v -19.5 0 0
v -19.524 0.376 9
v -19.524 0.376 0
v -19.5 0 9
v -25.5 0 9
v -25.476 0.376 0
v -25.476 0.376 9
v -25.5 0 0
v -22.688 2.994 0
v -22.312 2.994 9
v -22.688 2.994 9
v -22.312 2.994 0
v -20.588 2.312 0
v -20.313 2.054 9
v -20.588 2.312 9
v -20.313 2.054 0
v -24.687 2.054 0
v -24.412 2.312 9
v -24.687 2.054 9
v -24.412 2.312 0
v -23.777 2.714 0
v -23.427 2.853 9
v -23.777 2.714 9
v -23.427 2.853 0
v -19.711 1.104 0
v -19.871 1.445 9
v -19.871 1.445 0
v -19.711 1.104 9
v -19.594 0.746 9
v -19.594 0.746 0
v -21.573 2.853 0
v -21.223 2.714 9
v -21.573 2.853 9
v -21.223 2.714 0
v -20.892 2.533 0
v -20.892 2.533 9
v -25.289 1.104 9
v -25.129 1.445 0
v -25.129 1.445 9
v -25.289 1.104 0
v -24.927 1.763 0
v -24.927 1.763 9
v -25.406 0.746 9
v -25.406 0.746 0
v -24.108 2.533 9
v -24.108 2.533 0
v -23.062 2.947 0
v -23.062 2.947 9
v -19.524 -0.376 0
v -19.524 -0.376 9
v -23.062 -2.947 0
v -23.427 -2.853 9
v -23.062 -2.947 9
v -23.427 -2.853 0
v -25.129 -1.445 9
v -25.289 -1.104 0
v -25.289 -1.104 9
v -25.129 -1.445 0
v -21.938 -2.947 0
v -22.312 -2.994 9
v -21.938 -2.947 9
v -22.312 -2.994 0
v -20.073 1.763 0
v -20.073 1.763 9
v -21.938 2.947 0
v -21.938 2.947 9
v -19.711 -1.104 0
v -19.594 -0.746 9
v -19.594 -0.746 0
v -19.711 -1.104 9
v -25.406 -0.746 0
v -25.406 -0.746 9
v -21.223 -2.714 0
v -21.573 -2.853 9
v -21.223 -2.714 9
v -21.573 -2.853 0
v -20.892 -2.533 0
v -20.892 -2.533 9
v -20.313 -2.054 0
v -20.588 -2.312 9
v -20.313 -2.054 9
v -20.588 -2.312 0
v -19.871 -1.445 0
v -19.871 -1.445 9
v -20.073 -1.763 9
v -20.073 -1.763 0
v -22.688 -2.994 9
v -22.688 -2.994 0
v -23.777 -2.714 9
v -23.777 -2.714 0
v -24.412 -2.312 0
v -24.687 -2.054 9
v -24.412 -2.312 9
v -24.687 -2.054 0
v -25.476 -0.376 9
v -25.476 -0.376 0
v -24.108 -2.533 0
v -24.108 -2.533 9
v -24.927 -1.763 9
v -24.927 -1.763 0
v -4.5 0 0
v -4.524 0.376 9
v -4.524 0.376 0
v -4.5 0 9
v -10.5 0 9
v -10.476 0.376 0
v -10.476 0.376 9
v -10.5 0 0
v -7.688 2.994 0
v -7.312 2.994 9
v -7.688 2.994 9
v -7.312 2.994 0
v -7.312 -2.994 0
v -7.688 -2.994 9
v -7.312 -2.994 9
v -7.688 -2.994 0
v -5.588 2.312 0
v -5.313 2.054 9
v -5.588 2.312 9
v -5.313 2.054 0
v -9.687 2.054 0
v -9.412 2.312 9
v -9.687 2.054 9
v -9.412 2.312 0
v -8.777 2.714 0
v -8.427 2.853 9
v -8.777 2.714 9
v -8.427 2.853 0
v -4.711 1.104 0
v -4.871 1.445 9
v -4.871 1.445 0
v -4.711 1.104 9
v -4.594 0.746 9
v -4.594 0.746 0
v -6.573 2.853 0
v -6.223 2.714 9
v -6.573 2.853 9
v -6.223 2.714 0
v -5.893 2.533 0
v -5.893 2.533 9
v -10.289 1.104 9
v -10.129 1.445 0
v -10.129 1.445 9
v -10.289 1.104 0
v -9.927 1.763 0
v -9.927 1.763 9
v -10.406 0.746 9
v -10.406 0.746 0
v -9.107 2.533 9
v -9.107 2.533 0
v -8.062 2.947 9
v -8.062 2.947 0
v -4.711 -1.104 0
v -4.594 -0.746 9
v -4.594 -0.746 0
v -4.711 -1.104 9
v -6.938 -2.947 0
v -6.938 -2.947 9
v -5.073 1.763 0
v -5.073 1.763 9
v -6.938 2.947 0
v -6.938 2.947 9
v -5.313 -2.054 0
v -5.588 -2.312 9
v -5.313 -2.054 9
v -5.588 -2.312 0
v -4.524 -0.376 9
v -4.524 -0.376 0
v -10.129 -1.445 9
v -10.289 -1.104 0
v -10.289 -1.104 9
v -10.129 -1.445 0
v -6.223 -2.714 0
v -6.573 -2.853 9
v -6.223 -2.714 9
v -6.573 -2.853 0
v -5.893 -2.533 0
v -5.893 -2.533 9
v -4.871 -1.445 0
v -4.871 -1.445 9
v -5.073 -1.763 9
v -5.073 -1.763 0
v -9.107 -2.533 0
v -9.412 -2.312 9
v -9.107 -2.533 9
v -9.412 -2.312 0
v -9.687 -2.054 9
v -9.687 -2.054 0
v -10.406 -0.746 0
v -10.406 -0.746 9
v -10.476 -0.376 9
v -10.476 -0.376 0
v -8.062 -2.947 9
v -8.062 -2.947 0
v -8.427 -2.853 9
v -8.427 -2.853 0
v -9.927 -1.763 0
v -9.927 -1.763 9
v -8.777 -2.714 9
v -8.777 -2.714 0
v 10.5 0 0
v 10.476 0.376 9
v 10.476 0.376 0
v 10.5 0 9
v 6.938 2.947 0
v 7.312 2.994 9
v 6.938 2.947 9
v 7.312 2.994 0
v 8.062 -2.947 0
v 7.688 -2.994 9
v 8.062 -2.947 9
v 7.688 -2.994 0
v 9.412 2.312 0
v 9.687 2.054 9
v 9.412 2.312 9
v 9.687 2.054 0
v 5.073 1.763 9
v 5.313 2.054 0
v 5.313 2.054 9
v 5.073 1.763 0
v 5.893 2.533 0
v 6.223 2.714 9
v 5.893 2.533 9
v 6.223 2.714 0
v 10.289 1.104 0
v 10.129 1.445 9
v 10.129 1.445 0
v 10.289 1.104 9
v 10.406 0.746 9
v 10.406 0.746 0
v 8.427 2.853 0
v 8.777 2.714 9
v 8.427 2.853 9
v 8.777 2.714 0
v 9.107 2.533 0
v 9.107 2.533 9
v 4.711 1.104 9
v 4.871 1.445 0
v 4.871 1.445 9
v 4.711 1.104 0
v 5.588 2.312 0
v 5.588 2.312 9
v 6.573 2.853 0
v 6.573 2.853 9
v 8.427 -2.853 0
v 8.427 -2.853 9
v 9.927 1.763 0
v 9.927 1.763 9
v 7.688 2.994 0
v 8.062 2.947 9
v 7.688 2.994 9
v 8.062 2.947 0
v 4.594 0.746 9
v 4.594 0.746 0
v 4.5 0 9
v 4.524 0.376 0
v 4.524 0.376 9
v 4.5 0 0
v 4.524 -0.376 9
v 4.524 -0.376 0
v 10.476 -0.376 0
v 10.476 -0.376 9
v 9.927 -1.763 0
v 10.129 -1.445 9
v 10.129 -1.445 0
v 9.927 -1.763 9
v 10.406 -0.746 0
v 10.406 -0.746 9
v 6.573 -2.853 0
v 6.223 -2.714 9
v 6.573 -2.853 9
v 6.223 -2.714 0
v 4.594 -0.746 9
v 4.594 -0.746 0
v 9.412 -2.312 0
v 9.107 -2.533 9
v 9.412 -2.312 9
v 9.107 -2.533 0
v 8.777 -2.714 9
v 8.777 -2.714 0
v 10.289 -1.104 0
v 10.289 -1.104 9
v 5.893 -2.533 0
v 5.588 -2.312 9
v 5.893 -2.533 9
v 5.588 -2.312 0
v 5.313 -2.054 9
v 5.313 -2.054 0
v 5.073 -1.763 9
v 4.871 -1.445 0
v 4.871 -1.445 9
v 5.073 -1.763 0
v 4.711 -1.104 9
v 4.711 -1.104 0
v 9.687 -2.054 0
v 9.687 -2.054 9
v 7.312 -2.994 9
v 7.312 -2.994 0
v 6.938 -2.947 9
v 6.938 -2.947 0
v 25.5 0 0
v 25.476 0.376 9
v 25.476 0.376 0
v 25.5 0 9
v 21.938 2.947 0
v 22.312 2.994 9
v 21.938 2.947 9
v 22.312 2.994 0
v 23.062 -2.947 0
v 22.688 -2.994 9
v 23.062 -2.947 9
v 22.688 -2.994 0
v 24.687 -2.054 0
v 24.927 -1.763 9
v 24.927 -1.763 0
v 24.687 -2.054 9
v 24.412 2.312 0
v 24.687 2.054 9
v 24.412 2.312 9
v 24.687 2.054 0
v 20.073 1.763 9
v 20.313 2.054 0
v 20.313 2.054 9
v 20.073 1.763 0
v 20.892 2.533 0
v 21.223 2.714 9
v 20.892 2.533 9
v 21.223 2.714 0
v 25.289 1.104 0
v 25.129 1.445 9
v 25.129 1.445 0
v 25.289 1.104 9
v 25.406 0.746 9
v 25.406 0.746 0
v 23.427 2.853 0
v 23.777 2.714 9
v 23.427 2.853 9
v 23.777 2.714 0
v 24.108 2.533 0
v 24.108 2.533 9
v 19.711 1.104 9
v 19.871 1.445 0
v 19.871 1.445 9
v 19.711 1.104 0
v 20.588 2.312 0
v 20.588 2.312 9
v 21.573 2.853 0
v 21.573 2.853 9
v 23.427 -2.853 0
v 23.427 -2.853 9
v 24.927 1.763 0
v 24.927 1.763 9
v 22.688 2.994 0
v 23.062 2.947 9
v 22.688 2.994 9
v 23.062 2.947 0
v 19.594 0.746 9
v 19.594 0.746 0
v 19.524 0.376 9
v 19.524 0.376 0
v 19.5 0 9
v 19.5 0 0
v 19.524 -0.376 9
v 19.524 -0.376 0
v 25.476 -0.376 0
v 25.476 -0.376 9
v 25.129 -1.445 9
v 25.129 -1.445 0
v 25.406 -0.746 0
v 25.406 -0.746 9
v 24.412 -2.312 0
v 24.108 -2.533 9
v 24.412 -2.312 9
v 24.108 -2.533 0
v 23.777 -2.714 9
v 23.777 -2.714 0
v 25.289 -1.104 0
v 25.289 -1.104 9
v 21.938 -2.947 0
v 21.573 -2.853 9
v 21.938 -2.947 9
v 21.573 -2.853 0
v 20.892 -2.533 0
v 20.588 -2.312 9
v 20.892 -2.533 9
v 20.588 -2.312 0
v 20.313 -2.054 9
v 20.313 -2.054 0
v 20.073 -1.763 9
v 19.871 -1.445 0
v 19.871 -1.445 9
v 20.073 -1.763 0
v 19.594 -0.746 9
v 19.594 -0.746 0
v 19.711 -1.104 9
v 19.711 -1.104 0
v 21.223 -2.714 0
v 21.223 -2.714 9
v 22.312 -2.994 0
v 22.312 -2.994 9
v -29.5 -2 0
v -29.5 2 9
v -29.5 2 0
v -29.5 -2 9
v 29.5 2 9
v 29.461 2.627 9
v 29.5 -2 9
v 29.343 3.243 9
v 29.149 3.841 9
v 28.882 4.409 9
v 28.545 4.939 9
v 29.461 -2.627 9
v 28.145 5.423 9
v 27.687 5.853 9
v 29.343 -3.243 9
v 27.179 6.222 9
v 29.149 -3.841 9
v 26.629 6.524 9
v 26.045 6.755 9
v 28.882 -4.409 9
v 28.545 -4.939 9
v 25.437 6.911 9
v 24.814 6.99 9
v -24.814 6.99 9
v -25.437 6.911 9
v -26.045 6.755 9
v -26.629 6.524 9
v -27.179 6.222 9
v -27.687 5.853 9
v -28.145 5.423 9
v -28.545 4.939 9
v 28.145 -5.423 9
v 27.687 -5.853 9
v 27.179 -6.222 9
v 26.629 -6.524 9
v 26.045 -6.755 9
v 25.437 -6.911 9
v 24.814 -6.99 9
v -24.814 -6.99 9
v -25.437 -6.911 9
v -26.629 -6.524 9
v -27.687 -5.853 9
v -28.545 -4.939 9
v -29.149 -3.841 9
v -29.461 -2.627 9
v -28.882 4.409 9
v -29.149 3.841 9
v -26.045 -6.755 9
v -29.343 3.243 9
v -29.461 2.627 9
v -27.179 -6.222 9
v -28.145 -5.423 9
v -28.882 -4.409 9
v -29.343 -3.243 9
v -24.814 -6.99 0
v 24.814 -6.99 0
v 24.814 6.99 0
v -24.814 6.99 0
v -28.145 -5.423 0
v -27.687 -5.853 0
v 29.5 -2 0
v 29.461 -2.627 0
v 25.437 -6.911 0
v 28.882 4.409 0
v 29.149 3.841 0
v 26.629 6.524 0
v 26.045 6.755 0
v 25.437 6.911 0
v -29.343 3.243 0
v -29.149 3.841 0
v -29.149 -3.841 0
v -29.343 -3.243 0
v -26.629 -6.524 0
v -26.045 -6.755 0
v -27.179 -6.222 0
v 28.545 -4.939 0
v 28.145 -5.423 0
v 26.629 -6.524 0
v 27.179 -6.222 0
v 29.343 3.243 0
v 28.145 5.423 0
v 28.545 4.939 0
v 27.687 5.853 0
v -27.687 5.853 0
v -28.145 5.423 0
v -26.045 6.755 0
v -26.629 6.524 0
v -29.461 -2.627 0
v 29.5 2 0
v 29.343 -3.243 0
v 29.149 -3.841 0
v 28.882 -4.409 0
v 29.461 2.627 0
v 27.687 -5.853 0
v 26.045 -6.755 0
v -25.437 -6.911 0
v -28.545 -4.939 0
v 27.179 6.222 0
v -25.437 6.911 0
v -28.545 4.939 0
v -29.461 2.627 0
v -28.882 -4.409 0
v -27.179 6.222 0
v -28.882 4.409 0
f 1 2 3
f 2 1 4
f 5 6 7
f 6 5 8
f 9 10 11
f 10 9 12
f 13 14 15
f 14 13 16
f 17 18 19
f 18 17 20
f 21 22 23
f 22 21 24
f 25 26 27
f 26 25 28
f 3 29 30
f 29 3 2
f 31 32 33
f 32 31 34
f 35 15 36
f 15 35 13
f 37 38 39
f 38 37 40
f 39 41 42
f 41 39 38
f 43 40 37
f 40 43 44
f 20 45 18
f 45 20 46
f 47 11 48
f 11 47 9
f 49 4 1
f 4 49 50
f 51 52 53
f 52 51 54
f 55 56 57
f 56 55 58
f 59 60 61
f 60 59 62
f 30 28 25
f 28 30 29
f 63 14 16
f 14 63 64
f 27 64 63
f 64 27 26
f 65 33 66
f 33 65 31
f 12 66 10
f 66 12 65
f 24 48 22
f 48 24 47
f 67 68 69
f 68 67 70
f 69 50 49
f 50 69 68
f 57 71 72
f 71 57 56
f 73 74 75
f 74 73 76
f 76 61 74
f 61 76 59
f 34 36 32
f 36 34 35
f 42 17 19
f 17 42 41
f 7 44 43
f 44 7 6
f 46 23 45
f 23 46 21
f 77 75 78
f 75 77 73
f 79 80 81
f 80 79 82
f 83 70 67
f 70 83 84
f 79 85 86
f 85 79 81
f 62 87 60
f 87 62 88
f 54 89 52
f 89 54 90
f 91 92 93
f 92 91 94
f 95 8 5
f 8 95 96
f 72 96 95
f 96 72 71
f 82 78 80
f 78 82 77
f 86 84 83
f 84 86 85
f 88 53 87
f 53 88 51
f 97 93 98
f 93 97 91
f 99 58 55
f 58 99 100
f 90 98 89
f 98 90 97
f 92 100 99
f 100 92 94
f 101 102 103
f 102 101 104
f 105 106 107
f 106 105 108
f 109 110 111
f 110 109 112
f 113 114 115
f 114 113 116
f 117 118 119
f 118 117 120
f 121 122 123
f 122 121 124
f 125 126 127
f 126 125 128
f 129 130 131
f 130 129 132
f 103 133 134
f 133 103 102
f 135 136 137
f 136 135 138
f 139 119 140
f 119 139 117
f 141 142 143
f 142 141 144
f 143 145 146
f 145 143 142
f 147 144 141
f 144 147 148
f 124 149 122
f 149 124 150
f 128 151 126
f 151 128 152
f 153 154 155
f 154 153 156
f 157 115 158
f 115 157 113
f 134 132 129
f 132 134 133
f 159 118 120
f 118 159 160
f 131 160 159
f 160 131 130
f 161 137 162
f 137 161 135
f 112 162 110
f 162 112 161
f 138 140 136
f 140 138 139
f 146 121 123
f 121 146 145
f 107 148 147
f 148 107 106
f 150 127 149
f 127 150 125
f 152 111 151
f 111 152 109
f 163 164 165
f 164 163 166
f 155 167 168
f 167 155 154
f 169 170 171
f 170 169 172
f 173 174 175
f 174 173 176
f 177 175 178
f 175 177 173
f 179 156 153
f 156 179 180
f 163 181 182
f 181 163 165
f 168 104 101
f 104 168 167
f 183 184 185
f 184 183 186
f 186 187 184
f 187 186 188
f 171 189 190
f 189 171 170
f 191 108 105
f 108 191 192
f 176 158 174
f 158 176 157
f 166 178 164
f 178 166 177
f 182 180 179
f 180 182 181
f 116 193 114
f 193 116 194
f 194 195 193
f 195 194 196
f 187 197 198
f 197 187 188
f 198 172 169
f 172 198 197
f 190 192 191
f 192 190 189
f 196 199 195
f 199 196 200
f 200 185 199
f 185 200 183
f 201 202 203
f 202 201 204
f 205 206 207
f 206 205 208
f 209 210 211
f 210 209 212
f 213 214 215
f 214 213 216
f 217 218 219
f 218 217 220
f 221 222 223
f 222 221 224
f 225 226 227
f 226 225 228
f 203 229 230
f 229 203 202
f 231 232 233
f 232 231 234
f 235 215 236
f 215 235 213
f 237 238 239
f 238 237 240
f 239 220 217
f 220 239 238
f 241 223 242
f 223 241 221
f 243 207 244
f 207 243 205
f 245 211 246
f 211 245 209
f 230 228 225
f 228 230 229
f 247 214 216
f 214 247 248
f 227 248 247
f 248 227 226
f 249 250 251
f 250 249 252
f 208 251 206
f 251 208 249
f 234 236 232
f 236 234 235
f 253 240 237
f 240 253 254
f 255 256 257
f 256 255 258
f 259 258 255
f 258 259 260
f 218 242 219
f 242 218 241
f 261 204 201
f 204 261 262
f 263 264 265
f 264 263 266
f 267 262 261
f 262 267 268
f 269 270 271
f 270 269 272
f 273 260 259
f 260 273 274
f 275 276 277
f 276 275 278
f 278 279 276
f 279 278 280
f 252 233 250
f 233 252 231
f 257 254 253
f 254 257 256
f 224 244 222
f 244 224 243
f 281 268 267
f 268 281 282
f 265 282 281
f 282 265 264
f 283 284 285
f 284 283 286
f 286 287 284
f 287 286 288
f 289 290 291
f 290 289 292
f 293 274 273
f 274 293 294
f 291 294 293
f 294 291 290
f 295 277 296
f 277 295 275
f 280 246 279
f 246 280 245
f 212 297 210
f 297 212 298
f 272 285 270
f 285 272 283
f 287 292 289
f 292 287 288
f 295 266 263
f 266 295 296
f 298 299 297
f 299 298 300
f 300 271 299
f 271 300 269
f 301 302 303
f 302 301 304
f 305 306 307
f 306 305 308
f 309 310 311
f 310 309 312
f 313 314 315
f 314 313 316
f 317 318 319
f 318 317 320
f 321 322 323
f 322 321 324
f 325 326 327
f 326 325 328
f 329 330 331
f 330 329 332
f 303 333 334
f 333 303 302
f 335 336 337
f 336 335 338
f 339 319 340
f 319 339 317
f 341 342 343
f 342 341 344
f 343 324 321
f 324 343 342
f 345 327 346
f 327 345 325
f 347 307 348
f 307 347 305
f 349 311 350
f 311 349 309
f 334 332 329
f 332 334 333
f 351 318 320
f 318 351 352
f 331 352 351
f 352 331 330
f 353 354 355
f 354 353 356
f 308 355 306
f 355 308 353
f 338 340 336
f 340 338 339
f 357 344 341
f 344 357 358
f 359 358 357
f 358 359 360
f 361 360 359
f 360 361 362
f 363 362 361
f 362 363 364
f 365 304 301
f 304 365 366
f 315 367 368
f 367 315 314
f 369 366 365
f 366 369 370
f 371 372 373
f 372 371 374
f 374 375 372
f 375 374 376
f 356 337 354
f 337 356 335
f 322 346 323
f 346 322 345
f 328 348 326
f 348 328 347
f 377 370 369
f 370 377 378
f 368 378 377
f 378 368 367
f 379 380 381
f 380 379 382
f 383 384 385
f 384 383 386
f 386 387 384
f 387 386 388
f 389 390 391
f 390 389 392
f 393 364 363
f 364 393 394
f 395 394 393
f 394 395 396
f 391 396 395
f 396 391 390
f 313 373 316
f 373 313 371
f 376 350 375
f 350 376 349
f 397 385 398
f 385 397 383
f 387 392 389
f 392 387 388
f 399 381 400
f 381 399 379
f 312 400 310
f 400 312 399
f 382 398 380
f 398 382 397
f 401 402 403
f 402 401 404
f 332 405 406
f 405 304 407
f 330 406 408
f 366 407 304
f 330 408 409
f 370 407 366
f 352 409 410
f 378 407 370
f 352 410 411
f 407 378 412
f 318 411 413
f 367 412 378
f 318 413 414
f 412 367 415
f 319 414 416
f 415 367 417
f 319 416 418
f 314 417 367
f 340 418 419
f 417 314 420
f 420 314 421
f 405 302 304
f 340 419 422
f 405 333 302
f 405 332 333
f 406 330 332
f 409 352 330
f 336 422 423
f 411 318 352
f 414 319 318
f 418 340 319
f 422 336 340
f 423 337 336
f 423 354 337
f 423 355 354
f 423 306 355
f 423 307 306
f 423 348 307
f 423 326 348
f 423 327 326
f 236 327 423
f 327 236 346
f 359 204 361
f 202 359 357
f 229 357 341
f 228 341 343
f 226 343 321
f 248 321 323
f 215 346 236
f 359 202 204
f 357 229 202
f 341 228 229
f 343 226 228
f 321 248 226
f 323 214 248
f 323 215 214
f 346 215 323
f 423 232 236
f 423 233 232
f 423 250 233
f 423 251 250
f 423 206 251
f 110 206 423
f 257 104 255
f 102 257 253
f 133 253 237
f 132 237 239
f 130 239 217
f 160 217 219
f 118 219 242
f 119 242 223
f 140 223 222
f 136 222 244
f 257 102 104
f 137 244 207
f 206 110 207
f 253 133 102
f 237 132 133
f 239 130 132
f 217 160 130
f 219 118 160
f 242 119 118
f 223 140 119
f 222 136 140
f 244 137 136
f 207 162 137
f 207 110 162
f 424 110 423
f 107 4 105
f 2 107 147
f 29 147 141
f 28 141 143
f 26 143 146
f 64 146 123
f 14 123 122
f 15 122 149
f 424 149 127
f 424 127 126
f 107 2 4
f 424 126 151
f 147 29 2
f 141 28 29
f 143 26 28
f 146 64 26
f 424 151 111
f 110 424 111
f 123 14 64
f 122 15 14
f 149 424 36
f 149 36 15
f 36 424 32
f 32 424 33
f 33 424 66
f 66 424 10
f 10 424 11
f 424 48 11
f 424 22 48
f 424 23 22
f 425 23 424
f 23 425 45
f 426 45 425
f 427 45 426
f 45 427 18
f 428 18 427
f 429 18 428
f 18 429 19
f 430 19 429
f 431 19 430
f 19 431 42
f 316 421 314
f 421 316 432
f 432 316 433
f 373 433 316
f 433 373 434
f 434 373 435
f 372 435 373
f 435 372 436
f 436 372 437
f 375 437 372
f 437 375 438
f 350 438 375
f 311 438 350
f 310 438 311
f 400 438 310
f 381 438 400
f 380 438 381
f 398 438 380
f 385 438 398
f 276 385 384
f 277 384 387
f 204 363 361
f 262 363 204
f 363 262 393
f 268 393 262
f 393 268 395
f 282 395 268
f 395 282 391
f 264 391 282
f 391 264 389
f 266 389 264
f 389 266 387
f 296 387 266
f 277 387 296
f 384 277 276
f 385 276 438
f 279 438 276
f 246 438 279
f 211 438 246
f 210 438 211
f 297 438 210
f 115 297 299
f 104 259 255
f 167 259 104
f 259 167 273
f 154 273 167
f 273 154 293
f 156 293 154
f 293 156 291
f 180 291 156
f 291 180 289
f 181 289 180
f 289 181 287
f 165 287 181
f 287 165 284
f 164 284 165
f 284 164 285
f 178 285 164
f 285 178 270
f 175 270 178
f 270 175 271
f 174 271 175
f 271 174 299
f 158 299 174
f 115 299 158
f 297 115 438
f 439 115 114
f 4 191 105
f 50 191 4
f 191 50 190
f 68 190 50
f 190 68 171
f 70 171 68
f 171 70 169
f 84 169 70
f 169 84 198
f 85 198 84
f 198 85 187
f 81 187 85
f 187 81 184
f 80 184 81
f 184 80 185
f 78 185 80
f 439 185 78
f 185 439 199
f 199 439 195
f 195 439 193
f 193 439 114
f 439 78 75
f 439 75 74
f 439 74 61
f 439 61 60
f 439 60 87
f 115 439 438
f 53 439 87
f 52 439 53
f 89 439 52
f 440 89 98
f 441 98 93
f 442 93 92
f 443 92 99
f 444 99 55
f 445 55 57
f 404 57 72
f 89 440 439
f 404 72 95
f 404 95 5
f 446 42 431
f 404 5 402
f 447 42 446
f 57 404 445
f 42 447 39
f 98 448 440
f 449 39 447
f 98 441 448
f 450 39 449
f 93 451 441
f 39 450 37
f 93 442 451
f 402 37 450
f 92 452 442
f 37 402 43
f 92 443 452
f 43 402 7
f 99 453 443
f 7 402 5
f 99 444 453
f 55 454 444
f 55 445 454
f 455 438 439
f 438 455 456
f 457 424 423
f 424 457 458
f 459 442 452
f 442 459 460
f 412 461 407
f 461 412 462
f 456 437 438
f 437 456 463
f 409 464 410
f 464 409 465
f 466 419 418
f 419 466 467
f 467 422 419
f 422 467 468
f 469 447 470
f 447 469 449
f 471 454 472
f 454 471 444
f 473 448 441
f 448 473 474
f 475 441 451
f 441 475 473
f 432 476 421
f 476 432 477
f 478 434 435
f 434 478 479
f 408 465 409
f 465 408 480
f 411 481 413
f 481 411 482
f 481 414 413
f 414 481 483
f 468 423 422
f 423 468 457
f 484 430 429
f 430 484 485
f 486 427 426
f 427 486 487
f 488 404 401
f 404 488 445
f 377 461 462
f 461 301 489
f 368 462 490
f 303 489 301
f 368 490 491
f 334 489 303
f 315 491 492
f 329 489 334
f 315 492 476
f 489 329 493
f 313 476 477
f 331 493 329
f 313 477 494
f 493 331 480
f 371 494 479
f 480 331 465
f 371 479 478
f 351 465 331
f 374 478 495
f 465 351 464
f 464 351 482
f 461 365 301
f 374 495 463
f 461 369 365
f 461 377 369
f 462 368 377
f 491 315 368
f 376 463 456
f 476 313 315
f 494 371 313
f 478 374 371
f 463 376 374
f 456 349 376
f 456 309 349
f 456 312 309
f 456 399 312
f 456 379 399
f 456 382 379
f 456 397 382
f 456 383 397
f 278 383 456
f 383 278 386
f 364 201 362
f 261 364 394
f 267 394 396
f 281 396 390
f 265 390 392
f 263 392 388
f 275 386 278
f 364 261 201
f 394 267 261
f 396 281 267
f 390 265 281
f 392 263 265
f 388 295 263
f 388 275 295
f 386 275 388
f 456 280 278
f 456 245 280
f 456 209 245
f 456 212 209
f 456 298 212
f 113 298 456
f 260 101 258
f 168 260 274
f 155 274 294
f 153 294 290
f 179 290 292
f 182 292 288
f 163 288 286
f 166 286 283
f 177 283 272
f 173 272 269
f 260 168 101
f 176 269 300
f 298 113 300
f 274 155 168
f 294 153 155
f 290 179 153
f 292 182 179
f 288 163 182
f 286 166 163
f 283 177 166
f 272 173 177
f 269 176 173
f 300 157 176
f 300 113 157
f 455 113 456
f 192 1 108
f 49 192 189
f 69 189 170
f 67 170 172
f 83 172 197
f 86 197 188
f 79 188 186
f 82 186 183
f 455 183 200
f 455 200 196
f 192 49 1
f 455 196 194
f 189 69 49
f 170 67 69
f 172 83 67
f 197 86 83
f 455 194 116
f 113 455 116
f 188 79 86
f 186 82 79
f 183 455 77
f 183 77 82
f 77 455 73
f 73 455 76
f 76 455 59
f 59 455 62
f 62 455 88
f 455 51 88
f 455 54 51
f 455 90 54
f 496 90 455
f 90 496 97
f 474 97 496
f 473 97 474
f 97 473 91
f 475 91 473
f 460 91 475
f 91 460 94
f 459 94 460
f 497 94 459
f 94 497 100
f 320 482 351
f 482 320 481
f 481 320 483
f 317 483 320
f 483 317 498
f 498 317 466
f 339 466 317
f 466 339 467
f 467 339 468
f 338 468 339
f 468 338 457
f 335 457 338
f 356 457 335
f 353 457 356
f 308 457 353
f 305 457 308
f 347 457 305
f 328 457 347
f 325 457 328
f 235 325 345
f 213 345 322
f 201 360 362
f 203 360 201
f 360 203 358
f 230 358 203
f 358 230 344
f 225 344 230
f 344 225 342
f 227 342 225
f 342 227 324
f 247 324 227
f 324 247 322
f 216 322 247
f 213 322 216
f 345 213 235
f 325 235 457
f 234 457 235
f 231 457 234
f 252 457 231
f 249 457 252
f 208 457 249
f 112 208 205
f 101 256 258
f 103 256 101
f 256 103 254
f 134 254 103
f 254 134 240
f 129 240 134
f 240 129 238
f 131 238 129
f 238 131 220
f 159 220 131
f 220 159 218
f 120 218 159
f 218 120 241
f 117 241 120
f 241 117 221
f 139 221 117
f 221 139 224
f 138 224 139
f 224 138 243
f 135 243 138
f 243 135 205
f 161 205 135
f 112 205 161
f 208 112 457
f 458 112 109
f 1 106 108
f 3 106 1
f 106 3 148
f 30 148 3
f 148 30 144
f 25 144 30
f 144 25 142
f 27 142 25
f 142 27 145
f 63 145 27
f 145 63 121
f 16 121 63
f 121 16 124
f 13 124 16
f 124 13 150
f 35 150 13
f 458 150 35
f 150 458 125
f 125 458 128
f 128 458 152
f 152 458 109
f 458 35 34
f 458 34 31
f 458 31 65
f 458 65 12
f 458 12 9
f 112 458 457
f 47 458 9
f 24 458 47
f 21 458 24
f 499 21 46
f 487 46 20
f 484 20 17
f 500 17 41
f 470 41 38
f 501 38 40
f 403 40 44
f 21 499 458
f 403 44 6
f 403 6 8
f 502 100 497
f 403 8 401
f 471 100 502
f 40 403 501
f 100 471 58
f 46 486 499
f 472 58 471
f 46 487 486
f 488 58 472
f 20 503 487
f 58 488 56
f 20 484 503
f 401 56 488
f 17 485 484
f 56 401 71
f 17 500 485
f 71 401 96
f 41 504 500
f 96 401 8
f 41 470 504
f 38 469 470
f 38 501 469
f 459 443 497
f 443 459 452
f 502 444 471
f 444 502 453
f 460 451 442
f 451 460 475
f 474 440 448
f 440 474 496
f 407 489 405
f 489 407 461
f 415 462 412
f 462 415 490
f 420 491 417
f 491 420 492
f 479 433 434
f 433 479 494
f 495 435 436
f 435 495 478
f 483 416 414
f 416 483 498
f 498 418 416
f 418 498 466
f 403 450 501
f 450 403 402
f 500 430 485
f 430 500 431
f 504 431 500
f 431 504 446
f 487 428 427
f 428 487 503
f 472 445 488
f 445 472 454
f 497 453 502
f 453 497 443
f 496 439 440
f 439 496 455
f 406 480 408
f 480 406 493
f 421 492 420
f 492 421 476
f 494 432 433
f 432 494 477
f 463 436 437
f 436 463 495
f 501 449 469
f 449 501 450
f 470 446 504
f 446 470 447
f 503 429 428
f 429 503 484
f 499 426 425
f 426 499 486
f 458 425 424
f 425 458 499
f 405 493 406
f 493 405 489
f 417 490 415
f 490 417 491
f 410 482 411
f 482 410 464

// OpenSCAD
$fn = 50;


difference() {
	union() {
		hull() {
			translate(v = [-24.5000000000, 2.0000000000, 0]) {
				cylinder(h = 9, r = 5);
			}
			translate(v = [24.5000000000, 2.0000000000, 0]) {
				cylinder(h = 9, r = 5);
			}
			translate(v = [-24.5000000000, -2.0000000000, 0]) {
				cylinder(h = 9, r = 5);
			}
			translate(v = [24.5000000000, -2.0000000000, 0]) {
				cylinder(h = 9, r = 5);
			}
		}
	}
	union() {
		translate(v = [-22.5000000000, 0.0000000000, 0]) {
			translate(v = [0, 0, -100]) {
				cylinder(h = 200, r = 3.0000000000);
			}
		}
		translate(v = [-7.5000000000, 0.0000000000, 0]) {
			translate(v = [0, 0, -100]) {
				cylinder(h = 200, r = 3.0000000000);
			}
		}
		translate(v = [7.5000000000, 0.0000000000, 0]) {
			translate(v = [0, 0, -100]) {
				cylinder(h = 200, r = 3.0000000000);
			}
		}
		translate(v = [22.5000000000, 0.0000000000, 0]) {
			translate(v = [0, 0, -100]) {
				cylinder(h = 200, r = 3.0000000000);
			}
		}
	}
}
